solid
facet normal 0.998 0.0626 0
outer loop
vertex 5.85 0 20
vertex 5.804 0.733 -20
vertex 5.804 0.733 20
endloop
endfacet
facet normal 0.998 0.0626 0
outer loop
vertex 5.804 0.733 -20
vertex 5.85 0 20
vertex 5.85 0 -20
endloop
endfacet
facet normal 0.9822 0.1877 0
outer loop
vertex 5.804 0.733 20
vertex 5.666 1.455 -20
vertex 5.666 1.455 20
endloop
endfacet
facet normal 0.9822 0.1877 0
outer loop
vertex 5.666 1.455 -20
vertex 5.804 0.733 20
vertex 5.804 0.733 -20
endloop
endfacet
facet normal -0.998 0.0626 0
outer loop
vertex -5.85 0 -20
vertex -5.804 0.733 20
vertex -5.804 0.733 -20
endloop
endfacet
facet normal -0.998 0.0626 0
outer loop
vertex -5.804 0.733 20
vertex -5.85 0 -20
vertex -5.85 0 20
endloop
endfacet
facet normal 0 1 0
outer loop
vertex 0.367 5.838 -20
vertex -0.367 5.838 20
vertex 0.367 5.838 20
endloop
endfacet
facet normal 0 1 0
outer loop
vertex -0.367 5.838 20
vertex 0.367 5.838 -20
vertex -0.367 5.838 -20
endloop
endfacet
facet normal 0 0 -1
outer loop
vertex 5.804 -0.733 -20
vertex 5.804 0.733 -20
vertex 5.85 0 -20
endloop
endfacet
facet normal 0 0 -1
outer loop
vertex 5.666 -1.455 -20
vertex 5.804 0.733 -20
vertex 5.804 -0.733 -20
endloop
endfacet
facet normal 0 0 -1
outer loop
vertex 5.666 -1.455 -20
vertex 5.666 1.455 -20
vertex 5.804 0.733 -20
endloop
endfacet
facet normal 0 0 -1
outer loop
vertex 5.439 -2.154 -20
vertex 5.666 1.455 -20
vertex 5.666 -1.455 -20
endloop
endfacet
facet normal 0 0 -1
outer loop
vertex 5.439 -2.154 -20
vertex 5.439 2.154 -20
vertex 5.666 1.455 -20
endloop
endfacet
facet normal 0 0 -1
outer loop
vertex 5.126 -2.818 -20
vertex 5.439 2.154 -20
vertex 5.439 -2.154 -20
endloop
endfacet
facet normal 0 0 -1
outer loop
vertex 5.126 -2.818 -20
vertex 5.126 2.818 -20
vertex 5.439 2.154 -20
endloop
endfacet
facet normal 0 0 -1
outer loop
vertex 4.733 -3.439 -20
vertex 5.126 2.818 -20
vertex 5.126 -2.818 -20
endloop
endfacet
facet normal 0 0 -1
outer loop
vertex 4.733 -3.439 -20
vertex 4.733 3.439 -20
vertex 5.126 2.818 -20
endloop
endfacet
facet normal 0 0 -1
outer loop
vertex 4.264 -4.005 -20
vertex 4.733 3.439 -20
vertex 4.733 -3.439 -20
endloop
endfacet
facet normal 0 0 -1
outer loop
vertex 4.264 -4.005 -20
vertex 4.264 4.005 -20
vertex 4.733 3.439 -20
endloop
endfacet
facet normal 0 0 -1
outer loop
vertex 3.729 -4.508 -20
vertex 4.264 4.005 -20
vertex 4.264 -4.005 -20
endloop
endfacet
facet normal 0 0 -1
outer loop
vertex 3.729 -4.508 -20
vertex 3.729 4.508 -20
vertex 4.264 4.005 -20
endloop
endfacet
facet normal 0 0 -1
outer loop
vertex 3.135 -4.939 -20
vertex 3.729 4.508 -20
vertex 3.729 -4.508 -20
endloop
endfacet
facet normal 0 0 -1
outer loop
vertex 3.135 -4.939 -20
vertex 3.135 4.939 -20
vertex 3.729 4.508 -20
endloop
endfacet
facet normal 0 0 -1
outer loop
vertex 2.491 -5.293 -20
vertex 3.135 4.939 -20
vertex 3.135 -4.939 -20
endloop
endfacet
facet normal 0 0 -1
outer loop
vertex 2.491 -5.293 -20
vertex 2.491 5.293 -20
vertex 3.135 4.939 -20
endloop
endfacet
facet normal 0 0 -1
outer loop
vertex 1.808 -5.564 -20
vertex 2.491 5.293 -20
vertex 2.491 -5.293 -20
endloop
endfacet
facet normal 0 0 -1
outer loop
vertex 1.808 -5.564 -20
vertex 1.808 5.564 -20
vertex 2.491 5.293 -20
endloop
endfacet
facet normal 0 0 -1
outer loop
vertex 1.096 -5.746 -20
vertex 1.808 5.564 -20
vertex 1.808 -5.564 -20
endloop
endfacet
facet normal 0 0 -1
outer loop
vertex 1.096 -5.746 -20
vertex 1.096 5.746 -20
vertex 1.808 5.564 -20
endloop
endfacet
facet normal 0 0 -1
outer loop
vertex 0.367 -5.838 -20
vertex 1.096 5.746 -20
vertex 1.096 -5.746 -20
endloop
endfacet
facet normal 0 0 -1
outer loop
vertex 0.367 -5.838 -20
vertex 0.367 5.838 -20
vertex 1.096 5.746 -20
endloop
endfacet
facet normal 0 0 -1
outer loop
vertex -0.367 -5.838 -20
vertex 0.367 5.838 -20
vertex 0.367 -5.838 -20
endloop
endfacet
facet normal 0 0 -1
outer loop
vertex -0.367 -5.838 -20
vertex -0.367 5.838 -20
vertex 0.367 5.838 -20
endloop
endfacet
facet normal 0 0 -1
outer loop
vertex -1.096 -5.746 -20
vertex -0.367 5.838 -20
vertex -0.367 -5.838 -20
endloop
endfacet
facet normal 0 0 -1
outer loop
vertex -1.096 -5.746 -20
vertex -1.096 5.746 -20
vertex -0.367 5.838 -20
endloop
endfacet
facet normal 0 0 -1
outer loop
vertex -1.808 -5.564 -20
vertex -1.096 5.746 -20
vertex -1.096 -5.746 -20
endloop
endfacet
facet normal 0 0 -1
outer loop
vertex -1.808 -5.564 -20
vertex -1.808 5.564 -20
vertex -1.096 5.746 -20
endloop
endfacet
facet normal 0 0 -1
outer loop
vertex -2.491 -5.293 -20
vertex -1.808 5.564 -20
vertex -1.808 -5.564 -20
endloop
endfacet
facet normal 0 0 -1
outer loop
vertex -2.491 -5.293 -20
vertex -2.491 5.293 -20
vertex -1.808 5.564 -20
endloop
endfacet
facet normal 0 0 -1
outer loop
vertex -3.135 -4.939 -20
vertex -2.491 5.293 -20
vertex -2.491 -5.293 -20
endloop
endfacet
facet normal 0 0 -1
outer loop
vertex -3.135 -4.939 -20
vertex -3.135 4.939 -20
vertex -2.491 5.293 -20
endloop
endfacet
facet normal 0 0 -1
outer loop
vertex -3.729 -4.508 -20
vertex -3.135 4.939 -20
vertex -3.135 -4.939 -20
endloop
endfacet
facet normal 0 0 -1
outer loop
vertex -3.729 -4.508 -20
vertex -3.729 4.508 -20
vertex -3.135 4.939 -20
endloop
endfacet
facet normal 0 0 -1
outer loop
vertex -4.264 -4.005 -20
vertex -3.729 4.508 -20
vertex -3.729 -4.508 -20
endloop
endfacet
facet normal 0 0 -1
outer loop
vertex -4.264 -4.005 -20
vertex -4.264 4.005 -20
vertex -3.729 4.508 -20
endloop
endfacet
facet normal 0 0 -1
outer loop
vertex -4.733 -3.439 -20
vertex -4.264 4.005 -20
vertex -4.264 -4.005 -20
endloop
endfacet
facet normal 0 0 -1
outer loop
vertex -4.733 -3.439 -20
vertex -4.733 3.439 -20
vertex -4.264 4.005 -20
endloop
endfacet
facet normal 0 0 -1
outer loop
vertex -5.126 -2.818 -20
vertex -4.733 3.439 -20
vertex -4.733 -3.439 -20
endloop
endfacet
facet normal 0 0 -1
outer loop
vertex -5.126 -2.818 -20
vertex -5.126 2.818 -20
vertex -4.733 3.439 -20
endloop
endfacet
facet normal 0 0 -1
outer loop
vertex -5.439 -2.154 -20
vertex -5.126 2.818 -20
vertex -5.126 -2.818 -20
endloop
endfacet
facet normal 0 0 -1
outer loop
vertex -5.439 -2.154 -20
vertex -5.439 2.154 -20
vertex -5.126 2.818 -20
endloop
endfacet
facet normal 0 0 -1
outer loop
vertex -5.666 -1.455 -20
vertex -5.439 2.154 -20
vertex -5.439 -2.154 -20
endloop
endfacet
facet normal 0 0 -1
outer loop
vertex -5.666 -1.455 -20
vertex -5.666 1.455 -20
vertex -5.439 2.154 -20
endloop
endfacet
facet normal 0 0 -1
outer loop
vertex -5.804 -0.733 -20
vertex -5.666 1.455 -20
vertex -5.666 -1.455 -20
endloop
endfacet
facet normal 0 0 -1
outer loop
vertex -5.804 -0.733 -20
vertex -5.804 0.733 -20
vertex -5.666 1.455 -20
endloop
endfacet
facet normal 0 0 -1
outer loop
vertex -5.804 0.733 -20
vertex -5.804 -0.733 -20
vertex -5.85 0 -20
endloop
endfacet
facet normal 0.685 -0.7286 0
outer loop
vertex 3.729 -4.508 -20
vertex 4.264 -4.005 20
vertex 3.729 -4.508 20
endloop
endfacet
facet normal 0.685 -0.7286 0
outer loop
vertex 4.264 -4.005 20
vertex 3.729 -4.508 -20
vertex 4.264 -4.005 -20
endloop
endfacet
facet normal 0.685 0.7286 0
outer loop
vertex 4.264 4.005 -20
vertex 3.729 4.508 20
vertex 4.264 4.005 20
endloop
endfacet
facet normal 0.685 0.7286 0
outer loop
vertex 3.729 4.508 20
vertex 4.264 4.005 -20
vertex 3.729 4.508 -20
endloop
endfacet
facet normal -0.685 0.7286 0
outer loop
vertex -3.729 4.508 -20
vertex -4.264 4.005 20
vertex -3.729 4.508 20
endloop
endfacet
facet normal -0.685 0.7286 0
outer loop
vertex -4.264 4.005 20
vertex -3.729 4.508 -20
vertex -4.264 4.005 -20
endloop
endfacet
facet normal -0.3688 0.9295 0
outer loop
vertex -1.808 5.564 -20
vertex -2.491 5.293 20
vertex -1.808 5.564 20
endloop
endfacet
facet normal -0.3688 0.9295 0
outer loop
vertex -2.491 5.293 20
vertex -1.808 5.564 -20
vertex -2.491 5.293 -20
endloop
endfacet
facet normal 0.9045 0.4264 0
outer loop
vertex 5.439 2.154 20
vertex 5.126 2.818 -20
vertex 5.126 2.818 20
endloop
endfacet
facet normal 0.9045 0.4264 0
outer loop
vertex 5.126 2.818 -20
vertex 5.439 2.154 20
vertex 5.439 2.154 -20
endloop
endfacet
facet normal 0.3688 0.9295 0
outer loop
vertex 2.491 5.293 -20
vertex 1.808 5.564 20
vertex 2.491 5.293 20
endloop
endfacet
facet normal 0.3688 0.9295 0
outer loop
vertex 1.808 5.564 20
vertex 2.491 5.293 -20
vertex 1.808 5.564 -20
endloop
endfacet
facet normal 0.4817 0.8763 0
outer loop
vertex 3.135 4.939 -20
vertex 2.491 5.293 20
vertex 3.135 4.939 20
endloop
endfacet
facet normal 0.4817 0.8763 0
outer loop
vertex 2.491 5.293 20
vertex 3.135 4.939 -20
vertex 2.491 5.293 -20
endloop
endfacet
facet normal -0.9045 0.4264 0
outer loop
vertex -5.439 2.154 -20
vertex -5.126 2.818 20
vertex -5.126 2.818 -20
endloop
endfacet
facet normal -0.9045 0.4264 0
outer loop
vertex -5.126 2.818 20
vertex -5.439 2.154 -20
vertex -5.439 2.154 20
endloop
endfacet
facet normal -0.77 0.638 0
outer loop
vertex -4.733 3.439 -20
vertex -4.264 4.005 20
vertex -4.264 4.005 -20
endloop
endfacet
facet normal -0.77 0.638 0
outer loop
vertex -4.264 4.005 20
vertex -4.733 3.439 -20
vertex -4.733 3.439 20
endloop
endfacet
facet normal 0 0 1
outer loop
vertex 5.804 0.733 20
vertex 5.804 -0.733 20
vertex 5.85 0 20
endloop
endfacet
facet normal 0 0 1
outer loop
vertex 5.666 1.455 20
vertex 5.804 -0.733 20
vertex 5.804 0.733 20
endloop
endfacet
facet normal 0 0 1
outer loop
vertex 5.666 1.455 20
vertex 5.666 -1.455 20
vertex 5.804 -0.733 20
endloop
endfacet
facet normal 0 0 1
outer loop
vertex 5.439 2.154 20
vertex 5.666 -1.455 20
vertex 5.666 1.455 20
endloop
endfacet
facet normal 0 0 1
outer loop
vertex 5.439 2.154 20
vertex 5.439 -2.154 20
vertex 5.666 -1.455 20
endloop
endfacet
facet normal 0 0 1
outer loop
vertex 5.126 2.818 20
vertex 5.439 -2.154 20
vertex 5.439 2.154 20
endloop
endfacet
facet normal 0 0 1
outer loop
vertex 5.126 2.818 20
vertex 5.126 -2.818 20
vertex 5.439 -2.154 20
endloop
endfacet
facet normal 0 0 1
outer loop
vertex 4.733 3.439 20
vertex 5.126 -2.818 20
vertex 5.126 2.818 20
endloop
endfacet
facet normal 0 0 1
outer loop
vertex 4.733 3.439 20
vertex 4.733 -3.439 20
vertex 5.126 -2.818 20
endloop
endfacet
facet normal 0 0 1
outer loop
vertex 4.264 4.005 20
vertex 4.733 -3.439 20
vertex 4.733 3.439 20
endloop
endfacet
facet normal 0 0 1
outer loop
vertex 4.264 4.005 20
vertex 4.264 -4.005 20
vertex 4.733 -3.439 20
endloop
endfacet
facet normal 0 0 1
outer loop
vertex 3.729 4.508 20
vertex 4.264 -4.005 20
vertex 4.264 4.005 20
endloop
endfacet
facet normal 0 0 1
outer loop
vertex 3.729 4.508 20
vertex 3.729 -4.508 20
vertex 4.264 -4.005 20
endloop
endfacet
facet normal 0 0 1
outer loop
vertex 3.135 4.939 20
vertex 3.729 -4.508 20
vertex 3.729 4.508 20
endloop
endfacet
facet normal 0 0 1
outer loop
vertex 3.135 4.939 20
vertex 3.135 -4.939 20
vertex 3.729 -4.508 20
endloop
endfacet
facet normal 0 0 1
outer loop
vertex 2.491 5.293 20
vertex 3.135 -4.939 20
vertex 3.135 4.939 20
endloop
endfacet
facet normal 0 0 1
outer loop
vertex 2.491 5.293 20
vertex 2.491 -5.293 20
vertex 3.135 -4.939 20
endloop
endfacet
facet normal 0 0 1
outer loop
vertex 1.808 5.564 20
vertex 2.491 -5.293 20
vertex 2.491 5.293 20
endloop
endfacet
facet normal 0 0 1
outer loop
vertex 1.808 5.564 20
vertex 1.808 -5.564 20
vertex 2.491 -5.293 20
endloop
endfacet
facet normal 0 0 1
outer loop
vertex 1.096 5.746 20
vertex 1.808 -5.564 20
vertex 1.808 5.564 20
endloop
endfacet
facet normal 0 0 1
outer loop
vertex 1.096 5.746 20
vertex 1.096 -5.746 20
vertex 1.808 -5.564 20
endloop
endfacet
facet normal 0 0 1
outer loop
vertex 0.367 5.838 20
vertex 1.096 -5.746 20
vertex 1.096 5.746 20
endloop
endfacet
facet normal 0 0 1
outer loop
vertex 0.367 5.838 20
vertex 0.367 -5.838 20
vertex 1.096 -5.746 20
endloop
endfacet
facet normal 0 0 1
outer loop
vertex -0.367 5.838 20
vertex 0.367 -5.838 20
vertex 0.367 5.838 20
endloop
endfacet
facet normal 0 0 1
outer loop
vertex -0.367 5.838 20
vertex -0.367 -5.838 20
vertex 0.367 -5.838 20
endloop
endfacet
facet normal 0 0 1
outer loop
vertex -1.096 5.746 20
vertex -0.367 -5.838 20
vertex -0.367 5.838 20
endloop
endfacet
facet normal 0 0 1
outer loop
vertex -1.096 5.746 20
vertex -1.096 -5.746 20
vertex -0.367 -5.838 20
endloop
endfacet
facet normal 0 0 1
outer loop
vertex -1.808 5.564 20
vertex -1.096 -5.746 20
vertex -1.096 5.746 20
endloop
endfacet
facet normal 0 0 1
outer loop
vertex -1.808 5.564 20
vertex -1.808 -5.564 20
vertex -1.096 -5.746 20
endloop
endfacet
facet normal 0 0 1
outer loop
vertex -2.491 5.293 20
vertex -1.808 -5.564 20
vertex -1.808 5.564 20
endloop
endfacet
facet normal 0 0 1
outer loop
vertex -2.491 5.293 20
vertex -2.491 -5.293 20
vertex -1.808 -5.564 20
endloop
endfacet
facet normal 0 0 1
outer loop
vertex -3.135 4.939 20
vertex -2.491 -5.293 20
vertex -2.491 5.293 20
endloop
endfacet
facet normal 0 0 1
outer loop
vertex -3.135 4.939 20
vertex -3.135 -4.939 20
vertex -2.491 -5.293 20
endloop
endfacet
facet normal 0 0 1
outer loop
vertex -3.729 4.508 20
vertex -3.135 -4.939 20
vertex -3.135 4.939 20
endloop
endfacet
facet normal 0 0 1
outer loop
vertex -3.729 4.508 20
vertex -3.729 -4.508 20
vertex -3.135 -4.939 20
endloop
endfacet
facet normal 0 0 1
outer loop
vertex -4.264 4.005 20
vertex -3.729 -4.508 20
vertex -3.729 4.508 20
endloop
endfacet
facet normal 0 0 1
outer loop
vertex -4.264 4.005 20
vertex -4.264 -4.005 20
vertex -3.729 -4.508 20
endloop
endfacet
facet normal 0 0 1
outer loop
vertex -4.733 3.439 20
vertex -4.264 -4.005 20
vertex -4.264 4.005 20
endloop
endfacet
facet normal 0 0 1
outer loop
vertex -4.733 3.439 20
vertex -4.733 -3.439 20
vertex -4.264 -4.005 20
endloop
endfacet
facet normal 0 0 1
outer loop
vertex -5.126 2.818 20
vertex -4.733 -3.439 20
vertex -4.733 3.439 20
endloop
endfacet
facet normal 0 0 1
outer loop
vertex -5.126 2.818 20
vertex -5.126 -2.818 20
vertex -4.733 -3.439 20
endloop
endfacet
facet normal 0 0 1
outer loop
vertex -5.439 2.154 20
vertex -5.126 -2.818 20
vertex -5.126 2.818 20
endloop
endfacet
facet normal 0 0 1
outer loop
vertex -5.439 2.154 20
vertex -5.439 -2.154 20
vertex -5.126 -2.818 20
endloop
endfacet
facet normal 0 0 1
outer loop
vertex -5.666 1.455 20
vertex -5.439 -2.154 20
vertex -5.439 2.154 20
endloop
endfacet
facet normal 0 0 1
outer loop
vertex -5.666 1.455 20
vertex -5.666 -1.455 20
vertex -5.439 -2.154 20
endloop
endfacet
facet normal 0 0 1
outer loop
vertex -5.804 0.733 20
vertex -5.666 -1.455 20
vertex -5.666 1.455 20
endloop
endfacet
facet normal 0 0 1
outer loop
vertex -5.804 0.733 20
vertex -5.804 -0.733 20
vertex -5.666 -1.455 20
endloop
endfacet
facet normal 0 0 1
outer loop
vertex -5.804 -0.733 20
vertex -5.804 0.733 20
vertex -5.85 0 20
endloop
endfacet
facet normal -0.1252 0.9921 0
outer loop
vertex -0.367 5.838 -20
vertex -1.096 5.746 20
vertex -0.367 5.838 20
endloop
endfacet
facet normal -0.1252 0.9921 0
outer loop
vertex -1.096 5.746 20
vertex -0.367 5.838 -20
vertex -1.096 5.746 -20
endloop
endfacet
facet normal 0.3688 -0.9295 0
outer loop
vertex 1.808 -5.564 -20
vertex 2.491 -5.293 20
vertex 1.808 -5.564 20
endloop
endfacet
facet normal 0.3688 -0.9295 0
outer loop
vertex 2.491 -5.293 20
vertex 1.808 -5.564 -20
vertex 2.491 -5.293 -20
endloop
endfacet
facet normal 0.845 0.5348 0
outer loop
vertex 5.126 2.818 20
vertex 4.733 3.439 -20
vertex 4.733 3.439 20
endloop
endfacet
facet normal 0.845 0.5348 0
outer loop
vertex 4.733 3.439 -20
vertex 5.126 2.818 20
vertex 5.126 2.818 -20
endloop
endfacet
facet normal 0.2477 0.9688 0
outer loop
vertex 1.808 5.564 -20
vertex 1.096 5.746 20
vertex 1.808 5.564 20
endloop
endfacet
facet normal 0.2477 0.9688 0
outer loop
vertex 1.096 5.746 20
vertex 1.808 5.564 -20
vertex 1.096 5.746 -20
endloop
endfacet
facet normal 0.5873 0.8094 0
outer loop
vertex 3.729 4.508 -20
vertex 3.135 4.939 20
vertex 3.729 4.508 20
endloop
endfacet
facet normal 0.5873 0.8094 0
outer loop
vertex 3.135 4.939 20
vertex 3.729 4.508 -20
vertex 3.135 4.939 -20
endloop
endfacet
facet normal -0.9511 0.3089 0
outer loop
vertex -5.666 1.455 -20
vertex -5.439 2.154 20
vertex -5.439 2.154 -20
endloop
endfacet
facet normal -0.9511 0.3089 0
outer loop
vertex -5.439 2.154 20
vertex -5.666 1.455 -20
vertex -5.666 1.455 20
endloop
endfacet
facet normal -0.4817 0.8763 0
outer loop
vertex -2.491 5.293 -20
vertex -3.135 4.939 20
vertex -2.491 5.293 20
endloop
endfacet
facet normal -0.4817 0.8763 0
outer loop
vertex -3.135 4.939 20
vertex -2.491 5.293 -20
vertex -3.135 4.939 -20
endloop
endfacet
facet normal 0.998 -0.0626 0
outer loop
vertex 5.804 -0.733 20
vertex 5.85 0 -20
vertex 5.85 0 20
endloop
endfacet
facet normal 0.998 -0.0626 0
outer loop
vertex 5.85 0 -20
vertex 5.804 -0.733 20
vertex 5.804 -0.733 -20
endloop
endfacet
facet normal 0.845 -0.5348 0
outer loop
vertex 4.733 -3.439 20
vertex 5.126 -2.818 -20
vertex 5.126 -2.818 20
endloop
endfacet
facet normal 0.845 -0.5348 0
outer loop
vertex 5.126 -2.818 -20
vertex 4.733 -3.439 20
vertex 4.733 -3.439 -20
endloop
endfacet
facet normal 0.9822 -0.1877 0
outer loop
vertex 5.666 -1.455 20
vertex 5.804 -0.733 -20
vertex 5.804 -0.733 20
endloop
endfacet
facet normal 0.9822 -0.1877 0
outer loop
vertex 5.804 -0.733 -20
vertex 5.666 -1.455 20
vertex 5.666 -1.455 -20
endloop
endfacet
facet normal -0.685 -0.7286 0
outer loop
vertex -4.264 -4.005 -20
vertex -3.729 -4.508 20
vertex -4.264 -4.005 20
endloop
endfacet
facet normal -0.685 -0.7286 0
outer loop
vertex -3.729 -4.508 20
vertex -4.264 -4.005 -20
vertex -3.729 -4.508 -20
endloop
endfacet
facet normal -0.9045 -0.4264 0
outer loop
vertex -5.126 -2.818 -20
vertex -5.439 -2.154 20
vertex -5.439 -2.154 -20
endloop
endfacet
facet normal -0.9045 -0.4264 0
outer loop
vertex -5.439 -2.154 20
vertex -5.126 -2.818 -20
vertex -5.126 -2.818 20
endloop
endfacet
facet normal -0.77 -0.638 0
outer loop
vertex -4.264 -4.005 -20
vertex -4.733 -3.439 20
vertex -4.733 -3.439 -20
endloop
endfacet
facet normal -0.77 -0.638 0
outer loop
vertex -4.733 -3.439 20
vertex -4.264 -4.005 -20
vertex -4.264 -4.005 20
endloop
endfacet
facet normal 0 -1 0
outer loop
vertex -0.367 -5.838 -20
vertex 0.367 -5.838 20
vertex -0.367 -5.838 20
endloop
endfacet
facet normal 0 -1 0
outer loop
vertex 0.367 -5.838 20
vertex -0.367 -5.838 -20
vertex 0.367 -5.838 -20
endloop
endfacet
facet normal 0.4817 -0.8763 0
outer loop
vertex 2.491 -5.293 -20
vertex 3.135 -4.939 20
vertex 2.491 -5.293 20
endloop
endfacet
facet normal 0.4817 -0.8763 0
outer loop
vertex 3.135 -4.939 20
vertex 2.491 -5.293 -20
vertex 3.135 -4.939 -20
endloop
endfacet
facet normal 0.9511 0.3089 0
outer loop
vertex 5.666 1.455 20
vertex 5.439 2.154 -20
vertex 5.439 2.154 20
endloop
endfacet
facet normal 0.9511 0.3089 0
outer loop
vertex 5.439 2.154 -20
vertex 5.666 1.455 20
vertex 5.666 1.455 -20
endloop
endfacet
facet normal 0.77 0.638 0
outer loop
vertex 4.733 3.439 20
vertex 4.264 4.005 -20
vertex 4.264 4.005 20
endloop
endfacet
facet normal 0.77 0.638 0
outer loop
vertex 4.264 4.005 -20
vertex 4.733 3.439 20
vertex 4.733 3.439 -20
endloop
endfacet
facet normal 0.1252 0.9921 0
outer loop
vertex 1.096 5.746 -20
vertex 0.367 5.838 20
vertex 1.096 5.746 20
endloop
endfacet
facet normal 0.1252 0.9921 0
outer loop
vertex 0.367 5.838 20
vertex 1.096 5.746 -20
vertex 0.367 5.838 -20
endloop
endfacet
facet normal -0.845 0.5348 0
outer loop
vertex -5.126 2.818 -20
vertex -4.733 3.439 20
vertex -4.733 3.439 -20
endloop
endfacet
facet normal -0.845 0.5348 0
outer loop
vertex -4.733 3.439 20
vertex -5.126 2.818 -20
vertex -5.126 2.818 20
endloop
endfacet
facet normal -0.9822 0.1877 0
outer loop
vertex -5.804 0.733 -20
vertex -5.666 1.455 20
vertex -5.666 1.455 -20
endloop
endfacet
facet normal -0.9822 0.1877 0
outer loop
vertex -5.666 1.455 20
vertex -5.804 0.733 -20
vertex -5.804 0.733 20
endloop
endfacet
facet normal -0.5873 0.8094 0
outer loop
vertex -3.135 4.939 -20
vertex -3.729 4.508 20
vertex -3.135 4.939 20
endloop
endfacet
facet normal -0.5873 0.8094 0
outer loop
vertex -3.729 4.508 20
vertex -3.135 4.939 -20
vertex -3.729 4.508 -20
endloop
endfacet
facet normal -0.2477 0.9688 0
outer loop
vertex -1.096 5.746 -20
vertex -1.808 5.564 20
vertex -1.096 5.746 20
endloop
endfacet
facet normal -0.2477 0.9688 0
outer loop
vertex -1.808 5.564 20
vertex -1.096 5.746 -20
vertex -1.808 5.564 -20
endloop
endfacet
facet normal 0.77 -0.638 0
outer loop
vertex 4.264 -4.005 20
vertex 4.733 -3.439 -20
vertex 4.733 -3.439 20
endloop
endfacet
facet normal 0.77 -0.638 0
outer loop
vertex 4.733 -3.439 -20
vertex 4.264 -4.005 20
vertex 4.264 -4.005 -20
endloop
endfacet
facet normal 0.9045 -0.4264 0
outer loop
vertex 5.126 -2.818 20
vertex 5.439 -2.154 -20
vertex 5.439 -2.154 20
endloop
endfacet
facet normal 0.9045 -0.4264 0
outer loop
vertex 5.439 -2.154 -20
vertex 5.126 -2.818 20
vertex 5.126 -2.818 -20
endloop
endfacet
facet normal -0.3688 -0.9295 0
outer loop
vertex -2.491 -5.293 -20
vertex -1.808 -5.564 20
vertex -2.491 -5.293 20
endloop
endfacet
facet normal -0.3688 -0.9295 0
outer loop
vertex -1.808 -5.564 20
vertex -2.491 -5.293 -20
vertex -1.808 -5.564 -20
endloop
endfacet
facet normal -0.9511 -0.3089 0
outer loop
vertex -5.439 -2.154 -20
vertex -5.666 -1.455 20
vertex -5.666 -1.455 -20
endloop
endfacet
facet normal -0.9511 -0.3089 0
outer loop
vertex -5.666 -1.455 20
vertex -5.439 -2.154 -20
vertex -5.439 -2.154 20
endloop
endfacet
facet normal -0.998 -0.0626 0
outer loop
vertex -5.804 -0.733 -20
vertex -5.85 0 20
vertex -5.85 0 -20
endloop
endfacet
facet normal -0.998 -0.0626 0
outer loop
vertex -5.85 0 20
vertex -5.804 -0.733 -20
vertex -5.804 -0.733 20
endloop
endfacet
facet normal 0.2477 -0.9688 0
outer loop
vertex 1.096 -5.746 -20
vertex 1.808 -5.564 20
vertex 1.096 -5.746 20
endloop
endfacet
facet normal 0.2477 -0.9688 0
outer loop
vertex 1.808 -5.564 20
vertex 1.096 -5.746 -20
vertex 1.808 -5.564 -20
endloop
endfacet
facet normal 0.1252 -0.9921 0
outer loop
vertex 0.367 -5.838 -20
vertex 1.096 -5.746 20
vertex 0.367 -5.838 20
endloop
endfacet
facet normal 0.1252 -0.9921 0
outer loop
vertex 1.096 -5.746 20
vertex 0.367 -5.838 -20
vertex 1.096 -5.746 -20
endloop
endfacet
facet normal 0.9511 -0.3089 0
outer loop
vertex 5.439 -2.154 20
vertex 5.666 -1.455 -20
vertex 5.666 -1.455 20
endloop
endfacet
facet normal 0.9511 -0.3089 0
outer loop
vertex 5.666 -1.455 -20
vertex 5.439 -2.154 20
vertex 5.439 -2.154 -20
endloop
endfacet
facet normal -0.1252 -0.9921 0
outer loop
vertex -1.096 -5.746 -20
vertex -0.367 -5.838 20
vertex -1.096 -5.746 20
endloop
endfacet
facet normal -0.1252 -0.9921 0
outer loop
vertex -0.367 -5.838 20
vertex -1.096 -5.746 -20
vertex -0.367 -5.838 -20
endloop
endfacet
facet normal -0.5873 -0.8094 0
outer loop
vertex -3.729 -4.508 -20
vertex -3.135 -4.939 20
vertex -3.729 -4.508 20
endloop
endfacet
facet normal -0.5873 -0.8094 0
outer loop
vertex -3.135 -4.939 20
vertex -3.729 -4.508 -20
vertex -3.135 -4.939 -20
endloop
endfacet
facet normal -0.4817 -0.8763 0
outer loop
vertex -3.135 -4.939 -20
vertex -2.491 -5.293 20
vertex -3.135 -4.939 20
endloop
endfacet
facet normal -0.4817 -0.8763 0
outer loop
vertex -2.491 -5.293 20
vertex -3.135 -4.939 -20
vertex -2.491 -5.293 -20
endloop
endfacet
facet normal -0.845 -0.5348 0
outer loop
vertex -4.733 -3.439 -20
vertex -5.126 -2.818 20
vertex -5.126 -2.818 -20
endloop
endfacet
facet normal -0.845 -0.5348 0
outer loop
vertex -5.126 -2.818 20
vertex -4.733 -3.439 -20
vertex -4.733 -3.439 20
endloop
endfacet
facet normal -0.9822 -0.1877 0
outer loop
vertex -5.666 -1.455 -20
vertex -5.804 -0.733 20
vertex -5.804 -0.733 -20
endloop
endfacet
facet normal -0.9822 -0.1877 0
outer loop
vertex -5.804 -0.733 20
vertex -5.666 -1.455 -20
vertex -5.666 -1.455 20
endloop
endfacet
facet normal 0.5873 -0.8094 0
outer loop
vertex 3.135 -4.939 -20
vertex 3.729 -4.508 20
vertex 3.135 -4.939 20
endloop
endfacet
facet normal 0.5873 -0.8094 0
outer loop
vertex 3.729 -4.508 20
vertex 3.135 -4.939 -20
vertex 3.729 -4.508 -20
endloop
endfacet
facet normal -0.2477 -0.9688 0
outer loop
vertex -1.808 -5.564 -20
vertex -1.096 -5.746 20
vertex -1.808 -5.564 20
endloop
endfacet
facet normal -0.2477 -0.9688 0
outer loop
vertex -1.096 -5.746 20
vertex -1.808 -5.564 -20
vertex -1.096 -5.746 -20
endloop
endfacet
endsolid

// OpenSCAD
$fn = 50;


difference() {
	union() {
		translate(v = [0, 0, -20.0000000000]) {
			cylinder(h = 40, r = 5.8500000000);
		}
	}
	union() {
		translate(v = [0, 0, -100.0000000000]) {
			cylinder(h = 200, r = 0);
		}
	}
}
